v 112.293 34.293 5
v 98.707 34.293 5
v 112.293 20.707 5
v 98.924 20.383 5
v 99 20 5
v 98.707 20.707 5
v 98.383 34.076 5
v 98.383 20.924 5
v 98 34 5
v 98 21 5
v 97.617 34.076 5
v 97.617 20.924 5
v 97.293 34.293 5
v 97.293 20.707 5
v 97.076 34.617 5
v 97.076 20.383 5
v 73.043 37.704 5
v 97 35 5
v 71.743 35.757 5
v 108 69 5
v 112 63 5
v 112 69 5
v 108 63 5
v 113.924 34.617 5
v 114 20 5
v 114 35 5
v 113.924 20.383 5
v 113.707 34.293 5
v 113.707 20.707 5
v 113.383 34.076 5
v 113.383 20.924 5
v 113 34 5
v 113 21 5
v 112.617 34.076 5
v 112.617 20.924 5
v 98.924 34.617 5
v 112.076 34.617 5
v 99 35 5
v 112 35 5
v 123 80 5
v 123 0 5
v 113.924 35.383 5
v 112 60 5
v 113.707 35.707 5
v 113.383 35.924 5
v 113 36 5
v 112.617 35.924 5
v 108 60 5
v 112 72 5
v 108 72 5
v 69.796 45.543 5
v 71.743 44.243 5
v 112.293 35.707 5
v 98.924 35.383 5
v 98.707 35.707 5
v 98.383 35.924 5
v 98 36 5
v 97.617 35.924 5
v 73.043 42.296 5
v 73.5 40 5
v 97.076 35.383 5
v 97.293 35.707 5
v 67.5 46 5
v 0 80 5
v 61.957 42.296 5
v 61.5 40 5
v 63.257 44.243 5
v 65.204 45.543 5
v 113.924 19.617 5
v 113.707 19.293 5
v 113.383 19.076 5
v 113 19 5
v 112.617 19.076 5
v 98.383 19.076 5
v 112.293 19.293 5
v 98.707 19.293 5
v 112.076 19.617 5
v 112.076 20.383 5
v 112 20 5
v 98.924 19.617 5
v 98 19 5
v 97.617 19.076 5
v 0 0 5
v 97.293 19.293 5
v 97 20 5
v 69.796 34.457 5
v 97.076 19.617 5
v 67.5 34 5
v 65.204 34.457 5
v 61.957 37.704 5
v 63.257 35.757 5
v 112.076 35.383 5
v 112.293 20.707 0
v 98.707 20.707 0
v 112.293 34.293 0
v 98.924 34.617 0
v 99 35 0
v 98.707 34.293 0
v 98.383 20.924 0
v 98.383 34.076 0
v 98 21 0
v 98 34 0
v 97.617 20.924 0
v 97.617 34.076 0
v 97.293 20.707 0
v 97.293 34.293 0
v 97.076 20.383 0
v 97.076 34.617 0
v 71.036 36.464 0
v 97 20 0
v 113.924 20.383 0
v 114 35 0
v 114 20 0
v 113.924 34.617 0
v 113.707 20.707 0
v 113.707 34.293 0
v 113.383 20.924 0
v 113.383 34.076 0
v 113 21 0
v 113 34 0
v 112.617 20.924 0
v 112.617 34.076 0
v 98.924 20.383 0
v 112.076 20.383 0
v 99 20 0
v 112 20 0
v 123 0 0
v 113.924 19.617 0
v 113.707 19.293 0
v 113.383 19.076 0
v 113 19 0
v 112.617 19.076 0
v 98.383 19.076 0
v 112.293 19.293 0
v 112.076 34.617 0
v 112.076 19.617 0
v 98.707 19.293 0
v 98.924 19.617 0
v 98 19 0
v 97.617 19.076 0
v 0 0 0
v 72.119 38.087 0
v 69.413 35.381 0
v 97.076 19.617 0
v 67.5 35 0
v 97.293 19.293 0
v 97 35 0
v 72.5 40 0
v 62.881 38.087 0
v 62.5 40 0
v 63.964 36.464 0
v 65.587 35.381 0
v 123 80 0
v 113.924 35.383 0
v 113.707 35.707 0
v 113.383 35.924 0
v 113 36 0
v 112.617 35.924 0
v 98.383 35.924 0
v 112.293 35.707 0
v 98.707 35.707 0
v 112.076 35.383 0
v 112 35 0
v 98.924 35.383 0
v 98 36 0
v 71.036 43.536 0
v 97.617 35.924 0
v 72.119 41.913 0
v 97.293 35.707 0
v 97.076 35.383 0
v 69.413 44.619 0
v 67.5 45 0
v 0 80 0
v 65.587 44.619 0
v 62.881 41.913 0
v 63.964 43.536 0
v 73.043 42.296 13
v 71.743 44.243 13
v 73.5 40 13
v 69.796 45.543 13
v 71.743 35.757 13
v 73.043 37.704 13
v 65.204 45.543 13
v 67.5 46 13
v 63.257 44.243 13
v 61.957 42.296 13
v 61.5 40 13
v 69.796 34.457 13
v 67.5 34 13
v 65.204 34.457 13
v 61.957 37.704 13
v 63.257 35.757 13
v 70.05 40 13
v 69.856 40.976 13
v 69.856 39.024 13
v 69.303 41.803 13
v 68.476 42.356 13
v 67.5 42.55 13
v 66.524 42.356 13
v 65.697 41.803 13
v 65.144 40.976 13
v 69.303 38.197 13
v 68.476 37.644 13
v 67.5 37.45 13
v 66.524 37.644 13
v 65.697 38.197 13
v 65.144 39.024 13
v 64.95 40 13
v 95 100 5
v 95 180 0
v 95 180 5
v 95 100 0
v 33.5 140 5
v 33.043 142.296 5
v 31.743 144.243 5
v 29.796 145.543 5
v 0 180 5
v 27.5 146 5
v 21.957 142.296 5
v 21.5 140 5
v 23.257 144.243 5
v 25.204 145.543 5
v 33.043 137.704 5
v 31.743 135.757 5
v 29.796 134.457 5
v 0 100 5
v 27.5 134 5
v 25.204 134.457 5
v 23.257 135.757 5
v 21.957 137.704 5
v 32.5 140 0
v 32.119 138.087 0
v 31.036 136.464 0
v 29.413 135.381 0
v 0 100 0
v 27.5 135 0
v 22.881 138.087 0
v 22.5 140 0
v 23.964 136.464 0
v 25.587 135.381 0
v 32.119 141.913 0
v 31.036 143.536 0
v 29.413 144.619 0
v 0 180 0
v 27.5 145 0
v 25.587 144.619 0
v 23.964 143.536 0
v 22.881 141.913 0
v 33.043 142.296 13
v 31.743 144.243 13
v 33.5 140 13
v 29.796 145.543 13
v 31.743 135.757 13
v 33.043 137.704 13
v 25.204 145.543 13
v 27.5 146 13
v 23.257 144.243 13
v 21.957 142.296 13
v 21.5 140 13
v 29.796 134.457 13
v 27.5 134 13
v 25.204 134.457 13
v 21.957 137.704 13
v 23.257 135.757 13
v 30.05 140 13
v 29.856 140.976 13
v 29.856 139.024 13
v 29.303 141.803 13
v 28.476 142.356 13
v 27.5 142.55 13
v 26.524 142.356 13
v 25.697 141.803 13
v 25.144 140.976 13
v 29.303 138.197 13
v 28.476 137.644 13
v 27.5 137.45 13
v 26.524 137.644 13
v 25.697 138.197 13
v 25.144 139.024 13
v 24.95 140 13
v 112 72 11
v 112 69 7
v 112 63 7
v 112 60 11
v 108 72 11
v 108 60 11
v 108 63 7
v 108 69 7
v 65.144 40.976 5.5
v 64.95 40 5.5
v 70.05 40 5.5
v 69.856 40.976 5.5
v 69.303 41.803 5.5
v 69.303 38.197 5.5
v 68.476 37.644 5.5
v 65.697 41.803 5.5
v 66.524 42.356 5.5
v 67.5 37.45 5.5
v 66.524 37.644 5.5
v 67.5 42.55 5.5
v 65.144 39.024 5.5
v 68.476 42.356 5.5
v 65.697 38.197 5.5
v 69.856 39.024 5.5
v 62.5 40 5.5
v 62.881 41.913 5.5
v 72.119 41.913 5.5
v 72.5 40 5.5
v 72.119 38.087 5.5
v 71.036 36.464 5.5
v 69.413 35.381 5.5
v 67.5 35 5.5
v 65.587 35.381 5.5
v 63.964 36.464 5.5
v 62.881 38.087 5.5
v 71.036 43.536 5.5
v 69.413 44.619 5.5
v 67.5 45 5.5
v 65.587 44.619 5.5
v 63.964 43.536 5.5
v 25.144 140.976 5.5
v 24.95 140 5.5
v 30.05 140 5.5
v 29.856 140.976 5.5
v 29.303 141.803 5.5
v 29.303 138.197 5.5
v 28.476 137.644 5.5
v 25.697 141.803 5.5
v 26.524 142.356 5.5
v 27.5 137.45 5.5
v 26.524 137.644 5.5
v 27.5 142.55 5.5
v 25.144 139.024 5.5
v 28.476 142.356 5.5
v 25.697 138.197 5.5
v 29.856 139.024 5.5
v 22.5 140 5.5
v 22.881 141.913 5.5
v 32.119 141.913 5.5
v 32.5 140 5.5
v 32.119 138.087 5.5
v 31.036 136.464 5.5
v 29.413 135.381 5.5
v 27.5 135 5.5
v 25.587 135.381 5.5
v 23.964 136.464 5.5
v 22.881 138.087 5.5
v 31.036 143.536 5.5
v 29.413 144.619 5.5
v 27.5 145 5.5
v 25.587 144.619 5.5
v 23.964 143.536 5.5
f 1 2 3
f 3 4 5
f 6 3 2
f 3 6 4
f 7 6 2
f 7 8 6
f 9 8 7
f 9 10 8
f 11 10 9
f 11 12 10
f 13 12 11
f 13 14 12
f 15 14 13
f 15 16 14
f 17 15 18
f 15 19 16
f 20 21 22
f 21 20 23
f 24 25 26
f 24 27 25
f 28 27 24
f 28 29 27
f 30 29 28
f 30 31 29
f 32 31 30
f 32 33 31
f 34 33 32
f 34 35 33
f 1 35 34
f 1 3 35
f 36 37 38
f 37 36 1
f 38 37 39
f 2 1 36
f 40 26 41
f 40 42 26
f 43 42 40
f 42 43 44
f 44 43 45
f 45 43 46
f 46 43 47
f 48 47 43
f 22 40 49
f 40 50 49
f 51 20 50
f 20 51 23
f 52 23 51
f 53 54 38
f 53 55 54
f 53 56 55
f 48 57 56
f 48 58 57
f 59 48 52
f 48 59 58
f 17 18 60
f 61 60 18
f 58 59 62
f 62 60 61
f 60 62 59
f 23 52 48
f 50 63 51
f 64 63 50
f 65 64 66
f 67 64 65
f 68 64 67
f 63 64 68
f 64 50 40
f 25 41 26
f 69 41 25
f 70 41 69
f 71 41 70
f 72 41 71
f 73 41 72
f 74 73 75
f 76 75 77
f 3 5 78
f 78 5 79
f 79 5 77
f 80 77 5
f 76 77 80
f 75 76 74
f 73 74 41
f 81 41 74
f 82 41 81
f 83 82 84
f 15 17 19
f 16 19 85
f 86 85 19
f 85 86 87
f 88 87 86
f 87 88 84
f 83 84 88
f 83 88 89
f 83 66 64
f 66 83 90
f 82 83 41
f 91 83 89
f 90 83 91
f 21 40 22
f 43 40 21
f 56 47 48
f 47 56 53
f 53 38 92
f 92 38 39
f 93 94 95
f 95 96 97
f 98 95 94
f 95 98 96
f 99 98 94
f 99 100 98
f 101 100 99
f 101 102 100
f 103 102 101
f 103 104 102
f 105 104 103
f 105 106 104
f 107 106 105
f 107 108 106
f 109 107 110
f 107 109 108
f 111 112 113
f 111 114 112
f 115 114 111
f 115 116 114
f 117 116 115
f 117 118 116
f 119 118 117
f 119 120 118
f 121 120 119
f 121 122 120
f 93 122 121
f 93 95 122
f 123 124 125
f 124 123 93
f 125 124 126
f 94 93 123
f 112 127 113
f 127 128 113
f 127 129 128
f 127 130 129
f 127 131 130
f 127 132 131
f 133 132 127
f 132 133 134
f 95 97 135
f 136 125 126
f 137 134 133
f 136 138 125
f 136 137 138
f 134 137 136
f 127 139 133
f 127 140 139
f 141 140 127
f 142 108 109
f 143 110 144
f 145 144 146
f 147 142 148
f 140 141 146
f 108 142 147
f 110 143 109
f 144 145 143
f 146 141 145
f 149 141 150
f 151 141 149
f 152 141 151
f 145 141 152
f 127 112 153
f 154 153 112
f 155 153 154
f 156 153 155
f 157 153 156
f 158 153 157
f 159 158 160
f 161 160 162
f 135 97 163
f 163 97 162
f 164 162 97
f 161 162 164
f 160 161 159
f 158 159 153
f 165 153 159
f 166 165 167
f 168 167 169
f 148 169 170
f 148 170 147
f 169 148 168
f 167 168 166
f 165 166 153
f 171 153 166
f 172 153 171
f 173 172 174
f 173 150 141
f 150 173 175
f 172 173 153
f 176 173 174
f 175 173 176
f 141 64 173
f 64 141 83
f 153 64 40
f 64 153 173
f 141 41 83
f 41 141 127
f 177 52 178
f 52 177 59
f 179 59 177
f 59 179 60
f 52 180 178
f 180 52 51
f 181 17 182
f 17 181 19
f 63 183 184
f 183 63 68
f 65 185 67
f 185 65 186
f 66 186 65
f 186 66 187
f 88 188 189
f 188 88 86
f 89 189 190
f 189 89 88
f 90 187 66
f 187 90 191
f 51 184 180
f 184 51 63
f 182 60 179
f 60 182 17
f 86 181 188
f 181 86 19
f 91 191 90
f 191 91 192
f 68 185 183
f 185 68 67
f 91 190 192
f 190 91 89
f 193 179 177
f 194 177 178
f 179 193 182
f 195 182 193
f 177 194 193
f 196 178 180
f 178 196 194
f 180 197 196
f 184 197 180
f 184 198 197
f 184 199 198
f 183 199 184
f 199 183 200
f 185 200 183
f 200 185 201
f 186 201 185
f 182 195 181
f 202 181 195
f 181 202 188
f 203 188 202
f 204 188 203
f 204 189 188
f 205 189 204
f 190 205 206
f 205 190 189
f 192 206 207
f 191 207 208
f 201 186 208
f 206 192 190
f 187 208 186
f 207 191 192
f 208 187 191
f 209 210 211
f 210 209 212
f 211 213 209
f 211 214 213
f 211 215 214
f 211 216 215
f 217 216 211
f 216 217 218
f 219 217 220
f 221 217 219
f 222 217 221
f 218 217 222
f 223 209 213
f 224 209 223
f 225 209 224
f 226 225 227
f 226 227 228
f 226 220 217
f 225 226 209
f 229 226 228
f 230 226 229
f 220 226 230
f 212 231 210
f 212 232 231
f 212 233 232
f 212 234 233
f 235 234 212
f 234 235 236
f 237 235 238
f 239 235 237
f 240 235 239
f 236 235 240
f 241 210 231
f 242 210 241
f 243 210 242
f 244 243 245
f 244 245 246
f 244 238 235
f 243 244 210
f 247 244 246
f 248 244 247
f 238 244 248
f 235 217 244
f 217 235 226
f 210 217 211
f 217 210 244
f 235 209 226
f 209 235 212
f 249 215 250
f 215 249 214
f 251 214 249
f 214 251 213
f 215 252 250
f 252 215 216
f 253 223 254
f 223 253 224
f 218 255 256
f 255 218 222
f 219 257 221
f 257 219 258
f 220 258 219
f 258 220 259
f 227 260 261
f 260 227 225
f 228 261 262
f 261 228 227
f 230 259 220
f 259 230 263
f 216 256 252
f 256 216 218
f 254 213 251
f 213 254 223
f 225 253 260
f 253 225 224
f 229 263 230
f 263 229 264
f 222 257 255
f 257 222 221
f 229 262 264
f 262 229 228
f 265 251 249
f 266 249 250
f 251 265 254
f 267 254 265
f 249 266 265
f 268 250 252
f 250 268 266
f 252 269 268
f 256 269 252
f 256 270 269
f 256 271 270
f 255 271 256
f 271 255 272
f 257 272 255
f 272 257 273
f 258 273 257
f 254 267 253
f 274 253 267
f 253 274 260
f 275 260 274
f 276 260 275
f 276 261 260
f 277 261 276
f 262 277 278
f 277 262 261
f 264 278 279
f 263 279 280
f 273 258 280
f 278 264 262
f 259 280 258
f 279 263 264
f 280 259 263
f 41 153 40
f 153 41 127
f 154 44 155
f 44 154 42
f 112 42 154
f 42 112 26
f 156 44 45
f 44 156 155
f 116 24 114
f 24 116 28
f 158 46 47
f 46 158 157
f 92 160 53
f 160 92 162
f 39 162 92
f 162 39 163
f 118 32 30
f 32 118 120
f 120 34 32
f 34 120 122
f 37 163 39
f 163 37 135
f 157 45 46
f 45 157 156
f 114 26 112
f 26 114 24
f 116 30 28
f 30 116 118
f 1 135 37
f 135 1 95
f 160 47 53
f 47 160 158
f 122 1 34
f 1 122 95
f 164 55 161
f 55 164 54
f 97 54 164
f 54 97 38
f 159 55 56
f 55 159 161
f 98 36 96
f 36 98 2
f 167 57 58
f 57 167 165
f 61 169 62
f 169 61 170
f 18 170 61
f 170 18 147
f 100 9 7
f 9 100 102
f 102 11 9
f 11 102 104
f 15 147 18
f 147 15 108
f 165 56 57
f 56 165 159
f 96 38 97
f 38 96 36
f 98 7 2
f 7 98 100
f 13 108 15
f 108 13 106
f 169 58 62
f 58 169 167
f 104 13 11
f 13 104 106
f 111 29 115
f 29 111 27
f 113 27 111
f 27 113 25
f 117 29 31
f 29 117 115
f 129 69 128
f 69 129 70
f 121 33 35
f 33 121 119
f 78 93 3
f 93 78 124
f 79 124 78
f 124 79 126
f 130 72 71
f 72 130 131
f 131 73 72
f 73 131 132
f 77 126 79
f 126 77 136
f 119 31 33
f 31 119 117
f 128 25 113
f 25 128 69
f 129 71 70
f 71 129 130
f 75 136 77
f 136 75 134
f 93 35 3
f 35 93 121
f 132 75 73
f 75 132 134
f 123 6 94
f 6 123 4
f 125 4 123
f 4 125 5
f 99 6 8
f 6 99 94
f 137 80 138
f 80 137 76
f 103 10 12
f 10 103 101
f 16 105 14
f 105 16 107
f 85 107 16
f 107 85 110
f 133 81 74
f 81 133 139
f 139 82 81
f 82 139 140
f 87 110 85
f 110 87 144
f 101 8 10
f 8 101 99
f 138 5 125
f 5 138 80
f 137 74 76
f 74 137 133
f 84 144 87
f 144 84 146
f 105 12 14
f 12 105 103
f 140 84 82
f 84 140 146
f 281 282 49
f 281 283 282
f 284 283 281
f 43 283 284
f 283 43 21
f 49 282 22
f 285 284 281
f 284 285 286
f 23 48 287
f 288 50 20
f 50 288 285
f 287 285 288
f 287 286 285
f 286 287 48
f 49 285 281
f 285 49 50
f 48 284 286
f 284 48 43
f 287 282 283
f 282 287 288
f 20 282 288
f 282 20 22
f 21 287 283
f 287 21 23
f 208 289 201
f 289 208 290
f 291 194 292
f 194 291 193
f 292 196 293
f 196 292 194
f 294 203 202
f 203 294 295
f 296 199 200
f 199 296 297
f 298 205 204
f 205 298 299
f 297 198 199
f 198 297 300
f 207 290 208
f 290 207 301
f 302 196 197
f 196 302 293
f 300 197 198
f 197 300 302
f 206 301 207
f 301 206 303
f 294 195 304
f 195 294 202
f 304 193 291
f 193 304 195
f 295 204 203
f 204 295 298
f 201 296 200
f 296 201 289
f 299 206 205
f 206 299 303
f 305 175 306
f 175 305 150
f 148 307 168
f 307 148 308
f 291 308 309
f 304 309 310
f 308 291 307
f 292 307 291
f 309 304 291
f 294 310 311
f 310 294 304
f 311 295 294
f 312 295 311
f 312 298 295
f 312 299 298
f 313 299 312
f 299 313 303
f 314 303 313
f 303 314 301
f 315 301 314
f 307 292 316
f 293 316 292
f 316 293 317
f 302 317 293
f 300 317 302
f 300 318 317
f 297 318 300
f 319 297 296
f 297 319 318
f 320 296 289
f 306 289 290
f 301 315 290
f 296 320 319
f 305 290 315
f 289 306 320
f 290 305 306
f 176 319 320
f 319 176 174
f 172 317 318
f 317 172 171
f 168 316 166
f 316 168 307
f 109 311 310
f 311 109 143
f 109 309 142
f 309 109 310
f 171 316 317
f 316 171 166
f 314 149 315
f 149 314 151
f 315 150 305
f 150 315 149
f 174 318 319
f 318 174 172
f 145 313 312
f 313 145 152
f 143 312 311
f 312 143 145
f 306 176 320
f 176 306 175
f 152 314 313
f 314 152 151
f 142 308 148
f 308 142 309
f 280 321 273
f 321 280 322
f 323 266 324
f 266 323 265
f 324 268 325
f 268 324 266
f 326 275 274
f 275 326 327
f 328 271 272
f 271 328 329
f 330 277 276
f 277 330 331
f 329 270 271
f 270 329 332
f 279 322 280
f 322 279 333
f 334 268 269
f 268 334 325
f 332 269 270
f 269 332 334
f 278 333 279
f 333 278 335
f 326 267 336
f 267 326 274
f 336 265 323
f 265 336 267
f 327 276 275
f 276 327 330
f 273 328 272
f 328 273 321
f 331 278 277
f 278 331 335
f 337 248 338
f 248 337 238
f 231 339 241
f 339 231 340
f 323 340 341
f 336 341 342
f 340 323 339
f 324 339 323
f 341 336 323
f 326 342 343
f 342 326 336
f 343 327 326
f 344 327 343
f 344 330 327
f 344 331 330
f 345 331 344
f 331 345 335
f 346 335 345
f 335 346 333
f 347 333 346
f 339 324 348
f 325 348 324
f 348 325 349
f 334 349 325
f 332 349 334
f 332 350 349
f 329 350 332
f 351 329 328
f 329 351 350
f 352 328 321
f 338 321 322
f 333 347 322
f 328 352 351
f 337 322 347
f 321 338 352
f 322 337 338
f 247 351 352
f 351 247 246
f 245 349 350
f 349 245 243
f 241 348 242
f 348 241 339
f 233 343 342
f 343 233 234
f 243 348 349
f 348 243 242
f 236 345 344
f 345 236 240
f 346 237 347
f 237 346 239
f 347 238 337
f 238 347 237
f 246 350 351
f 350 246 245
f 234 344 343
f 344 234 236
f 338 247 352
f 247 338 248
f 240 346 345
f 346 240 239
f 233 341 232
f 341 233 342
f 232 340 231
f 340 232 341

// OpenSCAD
rpost = 6;
hpost = 8;
rhole = 2.55;
rscrhead = 5;
sep = 10;
w = 95;
l = 80;
t = 5;
$fn = 16;
hoffset = w/2 - 15;
sg_hole_dist = 40;
hx_ext = 28;

//base plate, which is longer and has the extension for the hx711
difference(){
    union(){
        cube([w,l,t]);
        //add post for strain guage
        translate([(w+sg_hole_dist)/2,l/2,t]) cylinder(h = hpost, r = rpost);
        //translate([hoffset-sep,0,t]) cylinder(h = hpost, r = rpost, center = true);
    }
    
    translate([(w+sg_hole_dist)/2,l/2,0]) cylinder(h = hpost*4, r = rhole);
        //translate([hoffset-sep, 0,0]) cylinder(h = hpost*4, r = rhole, center = true);
    
    translate([(w+sg_hole_dist)/2,l/2,-t/2]) cylinder(h = 8, r = rscrhead);
    //translate([hoffset-sep, 0,-t/2]) cylinder(h = 8, r = rscrhead);
}


//atop plate
difference(){
    union(){
        translate([0, 100, 0]) cube([w,l,t]);
        translate([(w+sg_hole_dist)/2-sg_hole_dist,100+l/2,t]) cylinder(h = hpost, r = rpost);
        //translate([hoffset-sep,100,t]) cylinder(h = hpost, r = rpost, center = true);
    }
    
    translate([(w+sg_hole_dist)/2-sg_hole_dist,100+l/2,0]) cylinder(h = hpost*4, r = rhole);
        //translate([hoffset-sep, 100,0]) cylinder(h = hpost*4, r = rhole, center = true);
    
    translate([(w+sg_hole_dist)/2-sg_hole_dist,100+l/2,-t/2]) cylinder(h = 8, r = rscrhead);
    //translate([hoffset-sep, 100,-t/2]) cylinder(h = 8, r = rscrhead);
}



//add an extension on the back of one of the plates to accomodate the hx711
difference(){
    //baseplaste extension
    translate([w, 0, 0]) cube([hx_ext, l,t]);
    
    translate([w+hx_ext-10,l/2-5,-3]) cylinder(h = t+5, r = 1);
    translate([w+hx_ext-25,l/2-5,-3]) cylinder(h = t+5, r = 1);

    translate([w+hx_ext-10,l/2-20,-3]) cylinder(h = t+5, r = 1);
    translate([w+hx_ext-25,l/2-20,-3]) cylinder(h = t+5, r = 1);

}

    difference(){
        translate([w+hx_ext-15,l-20,3]) cube([4,12,8]);
        translate([w+hx_ext-15,l-20+3,3]) cube([6,6,4]);
    }

//    difference(){
//        translate([w/2+hx_ext/2-2.5,25,0]) cube([2,10,8]);
//        translate([w/2+hx_ext/2-3.5,27,2]) cube([4,6,4]);
//    }
